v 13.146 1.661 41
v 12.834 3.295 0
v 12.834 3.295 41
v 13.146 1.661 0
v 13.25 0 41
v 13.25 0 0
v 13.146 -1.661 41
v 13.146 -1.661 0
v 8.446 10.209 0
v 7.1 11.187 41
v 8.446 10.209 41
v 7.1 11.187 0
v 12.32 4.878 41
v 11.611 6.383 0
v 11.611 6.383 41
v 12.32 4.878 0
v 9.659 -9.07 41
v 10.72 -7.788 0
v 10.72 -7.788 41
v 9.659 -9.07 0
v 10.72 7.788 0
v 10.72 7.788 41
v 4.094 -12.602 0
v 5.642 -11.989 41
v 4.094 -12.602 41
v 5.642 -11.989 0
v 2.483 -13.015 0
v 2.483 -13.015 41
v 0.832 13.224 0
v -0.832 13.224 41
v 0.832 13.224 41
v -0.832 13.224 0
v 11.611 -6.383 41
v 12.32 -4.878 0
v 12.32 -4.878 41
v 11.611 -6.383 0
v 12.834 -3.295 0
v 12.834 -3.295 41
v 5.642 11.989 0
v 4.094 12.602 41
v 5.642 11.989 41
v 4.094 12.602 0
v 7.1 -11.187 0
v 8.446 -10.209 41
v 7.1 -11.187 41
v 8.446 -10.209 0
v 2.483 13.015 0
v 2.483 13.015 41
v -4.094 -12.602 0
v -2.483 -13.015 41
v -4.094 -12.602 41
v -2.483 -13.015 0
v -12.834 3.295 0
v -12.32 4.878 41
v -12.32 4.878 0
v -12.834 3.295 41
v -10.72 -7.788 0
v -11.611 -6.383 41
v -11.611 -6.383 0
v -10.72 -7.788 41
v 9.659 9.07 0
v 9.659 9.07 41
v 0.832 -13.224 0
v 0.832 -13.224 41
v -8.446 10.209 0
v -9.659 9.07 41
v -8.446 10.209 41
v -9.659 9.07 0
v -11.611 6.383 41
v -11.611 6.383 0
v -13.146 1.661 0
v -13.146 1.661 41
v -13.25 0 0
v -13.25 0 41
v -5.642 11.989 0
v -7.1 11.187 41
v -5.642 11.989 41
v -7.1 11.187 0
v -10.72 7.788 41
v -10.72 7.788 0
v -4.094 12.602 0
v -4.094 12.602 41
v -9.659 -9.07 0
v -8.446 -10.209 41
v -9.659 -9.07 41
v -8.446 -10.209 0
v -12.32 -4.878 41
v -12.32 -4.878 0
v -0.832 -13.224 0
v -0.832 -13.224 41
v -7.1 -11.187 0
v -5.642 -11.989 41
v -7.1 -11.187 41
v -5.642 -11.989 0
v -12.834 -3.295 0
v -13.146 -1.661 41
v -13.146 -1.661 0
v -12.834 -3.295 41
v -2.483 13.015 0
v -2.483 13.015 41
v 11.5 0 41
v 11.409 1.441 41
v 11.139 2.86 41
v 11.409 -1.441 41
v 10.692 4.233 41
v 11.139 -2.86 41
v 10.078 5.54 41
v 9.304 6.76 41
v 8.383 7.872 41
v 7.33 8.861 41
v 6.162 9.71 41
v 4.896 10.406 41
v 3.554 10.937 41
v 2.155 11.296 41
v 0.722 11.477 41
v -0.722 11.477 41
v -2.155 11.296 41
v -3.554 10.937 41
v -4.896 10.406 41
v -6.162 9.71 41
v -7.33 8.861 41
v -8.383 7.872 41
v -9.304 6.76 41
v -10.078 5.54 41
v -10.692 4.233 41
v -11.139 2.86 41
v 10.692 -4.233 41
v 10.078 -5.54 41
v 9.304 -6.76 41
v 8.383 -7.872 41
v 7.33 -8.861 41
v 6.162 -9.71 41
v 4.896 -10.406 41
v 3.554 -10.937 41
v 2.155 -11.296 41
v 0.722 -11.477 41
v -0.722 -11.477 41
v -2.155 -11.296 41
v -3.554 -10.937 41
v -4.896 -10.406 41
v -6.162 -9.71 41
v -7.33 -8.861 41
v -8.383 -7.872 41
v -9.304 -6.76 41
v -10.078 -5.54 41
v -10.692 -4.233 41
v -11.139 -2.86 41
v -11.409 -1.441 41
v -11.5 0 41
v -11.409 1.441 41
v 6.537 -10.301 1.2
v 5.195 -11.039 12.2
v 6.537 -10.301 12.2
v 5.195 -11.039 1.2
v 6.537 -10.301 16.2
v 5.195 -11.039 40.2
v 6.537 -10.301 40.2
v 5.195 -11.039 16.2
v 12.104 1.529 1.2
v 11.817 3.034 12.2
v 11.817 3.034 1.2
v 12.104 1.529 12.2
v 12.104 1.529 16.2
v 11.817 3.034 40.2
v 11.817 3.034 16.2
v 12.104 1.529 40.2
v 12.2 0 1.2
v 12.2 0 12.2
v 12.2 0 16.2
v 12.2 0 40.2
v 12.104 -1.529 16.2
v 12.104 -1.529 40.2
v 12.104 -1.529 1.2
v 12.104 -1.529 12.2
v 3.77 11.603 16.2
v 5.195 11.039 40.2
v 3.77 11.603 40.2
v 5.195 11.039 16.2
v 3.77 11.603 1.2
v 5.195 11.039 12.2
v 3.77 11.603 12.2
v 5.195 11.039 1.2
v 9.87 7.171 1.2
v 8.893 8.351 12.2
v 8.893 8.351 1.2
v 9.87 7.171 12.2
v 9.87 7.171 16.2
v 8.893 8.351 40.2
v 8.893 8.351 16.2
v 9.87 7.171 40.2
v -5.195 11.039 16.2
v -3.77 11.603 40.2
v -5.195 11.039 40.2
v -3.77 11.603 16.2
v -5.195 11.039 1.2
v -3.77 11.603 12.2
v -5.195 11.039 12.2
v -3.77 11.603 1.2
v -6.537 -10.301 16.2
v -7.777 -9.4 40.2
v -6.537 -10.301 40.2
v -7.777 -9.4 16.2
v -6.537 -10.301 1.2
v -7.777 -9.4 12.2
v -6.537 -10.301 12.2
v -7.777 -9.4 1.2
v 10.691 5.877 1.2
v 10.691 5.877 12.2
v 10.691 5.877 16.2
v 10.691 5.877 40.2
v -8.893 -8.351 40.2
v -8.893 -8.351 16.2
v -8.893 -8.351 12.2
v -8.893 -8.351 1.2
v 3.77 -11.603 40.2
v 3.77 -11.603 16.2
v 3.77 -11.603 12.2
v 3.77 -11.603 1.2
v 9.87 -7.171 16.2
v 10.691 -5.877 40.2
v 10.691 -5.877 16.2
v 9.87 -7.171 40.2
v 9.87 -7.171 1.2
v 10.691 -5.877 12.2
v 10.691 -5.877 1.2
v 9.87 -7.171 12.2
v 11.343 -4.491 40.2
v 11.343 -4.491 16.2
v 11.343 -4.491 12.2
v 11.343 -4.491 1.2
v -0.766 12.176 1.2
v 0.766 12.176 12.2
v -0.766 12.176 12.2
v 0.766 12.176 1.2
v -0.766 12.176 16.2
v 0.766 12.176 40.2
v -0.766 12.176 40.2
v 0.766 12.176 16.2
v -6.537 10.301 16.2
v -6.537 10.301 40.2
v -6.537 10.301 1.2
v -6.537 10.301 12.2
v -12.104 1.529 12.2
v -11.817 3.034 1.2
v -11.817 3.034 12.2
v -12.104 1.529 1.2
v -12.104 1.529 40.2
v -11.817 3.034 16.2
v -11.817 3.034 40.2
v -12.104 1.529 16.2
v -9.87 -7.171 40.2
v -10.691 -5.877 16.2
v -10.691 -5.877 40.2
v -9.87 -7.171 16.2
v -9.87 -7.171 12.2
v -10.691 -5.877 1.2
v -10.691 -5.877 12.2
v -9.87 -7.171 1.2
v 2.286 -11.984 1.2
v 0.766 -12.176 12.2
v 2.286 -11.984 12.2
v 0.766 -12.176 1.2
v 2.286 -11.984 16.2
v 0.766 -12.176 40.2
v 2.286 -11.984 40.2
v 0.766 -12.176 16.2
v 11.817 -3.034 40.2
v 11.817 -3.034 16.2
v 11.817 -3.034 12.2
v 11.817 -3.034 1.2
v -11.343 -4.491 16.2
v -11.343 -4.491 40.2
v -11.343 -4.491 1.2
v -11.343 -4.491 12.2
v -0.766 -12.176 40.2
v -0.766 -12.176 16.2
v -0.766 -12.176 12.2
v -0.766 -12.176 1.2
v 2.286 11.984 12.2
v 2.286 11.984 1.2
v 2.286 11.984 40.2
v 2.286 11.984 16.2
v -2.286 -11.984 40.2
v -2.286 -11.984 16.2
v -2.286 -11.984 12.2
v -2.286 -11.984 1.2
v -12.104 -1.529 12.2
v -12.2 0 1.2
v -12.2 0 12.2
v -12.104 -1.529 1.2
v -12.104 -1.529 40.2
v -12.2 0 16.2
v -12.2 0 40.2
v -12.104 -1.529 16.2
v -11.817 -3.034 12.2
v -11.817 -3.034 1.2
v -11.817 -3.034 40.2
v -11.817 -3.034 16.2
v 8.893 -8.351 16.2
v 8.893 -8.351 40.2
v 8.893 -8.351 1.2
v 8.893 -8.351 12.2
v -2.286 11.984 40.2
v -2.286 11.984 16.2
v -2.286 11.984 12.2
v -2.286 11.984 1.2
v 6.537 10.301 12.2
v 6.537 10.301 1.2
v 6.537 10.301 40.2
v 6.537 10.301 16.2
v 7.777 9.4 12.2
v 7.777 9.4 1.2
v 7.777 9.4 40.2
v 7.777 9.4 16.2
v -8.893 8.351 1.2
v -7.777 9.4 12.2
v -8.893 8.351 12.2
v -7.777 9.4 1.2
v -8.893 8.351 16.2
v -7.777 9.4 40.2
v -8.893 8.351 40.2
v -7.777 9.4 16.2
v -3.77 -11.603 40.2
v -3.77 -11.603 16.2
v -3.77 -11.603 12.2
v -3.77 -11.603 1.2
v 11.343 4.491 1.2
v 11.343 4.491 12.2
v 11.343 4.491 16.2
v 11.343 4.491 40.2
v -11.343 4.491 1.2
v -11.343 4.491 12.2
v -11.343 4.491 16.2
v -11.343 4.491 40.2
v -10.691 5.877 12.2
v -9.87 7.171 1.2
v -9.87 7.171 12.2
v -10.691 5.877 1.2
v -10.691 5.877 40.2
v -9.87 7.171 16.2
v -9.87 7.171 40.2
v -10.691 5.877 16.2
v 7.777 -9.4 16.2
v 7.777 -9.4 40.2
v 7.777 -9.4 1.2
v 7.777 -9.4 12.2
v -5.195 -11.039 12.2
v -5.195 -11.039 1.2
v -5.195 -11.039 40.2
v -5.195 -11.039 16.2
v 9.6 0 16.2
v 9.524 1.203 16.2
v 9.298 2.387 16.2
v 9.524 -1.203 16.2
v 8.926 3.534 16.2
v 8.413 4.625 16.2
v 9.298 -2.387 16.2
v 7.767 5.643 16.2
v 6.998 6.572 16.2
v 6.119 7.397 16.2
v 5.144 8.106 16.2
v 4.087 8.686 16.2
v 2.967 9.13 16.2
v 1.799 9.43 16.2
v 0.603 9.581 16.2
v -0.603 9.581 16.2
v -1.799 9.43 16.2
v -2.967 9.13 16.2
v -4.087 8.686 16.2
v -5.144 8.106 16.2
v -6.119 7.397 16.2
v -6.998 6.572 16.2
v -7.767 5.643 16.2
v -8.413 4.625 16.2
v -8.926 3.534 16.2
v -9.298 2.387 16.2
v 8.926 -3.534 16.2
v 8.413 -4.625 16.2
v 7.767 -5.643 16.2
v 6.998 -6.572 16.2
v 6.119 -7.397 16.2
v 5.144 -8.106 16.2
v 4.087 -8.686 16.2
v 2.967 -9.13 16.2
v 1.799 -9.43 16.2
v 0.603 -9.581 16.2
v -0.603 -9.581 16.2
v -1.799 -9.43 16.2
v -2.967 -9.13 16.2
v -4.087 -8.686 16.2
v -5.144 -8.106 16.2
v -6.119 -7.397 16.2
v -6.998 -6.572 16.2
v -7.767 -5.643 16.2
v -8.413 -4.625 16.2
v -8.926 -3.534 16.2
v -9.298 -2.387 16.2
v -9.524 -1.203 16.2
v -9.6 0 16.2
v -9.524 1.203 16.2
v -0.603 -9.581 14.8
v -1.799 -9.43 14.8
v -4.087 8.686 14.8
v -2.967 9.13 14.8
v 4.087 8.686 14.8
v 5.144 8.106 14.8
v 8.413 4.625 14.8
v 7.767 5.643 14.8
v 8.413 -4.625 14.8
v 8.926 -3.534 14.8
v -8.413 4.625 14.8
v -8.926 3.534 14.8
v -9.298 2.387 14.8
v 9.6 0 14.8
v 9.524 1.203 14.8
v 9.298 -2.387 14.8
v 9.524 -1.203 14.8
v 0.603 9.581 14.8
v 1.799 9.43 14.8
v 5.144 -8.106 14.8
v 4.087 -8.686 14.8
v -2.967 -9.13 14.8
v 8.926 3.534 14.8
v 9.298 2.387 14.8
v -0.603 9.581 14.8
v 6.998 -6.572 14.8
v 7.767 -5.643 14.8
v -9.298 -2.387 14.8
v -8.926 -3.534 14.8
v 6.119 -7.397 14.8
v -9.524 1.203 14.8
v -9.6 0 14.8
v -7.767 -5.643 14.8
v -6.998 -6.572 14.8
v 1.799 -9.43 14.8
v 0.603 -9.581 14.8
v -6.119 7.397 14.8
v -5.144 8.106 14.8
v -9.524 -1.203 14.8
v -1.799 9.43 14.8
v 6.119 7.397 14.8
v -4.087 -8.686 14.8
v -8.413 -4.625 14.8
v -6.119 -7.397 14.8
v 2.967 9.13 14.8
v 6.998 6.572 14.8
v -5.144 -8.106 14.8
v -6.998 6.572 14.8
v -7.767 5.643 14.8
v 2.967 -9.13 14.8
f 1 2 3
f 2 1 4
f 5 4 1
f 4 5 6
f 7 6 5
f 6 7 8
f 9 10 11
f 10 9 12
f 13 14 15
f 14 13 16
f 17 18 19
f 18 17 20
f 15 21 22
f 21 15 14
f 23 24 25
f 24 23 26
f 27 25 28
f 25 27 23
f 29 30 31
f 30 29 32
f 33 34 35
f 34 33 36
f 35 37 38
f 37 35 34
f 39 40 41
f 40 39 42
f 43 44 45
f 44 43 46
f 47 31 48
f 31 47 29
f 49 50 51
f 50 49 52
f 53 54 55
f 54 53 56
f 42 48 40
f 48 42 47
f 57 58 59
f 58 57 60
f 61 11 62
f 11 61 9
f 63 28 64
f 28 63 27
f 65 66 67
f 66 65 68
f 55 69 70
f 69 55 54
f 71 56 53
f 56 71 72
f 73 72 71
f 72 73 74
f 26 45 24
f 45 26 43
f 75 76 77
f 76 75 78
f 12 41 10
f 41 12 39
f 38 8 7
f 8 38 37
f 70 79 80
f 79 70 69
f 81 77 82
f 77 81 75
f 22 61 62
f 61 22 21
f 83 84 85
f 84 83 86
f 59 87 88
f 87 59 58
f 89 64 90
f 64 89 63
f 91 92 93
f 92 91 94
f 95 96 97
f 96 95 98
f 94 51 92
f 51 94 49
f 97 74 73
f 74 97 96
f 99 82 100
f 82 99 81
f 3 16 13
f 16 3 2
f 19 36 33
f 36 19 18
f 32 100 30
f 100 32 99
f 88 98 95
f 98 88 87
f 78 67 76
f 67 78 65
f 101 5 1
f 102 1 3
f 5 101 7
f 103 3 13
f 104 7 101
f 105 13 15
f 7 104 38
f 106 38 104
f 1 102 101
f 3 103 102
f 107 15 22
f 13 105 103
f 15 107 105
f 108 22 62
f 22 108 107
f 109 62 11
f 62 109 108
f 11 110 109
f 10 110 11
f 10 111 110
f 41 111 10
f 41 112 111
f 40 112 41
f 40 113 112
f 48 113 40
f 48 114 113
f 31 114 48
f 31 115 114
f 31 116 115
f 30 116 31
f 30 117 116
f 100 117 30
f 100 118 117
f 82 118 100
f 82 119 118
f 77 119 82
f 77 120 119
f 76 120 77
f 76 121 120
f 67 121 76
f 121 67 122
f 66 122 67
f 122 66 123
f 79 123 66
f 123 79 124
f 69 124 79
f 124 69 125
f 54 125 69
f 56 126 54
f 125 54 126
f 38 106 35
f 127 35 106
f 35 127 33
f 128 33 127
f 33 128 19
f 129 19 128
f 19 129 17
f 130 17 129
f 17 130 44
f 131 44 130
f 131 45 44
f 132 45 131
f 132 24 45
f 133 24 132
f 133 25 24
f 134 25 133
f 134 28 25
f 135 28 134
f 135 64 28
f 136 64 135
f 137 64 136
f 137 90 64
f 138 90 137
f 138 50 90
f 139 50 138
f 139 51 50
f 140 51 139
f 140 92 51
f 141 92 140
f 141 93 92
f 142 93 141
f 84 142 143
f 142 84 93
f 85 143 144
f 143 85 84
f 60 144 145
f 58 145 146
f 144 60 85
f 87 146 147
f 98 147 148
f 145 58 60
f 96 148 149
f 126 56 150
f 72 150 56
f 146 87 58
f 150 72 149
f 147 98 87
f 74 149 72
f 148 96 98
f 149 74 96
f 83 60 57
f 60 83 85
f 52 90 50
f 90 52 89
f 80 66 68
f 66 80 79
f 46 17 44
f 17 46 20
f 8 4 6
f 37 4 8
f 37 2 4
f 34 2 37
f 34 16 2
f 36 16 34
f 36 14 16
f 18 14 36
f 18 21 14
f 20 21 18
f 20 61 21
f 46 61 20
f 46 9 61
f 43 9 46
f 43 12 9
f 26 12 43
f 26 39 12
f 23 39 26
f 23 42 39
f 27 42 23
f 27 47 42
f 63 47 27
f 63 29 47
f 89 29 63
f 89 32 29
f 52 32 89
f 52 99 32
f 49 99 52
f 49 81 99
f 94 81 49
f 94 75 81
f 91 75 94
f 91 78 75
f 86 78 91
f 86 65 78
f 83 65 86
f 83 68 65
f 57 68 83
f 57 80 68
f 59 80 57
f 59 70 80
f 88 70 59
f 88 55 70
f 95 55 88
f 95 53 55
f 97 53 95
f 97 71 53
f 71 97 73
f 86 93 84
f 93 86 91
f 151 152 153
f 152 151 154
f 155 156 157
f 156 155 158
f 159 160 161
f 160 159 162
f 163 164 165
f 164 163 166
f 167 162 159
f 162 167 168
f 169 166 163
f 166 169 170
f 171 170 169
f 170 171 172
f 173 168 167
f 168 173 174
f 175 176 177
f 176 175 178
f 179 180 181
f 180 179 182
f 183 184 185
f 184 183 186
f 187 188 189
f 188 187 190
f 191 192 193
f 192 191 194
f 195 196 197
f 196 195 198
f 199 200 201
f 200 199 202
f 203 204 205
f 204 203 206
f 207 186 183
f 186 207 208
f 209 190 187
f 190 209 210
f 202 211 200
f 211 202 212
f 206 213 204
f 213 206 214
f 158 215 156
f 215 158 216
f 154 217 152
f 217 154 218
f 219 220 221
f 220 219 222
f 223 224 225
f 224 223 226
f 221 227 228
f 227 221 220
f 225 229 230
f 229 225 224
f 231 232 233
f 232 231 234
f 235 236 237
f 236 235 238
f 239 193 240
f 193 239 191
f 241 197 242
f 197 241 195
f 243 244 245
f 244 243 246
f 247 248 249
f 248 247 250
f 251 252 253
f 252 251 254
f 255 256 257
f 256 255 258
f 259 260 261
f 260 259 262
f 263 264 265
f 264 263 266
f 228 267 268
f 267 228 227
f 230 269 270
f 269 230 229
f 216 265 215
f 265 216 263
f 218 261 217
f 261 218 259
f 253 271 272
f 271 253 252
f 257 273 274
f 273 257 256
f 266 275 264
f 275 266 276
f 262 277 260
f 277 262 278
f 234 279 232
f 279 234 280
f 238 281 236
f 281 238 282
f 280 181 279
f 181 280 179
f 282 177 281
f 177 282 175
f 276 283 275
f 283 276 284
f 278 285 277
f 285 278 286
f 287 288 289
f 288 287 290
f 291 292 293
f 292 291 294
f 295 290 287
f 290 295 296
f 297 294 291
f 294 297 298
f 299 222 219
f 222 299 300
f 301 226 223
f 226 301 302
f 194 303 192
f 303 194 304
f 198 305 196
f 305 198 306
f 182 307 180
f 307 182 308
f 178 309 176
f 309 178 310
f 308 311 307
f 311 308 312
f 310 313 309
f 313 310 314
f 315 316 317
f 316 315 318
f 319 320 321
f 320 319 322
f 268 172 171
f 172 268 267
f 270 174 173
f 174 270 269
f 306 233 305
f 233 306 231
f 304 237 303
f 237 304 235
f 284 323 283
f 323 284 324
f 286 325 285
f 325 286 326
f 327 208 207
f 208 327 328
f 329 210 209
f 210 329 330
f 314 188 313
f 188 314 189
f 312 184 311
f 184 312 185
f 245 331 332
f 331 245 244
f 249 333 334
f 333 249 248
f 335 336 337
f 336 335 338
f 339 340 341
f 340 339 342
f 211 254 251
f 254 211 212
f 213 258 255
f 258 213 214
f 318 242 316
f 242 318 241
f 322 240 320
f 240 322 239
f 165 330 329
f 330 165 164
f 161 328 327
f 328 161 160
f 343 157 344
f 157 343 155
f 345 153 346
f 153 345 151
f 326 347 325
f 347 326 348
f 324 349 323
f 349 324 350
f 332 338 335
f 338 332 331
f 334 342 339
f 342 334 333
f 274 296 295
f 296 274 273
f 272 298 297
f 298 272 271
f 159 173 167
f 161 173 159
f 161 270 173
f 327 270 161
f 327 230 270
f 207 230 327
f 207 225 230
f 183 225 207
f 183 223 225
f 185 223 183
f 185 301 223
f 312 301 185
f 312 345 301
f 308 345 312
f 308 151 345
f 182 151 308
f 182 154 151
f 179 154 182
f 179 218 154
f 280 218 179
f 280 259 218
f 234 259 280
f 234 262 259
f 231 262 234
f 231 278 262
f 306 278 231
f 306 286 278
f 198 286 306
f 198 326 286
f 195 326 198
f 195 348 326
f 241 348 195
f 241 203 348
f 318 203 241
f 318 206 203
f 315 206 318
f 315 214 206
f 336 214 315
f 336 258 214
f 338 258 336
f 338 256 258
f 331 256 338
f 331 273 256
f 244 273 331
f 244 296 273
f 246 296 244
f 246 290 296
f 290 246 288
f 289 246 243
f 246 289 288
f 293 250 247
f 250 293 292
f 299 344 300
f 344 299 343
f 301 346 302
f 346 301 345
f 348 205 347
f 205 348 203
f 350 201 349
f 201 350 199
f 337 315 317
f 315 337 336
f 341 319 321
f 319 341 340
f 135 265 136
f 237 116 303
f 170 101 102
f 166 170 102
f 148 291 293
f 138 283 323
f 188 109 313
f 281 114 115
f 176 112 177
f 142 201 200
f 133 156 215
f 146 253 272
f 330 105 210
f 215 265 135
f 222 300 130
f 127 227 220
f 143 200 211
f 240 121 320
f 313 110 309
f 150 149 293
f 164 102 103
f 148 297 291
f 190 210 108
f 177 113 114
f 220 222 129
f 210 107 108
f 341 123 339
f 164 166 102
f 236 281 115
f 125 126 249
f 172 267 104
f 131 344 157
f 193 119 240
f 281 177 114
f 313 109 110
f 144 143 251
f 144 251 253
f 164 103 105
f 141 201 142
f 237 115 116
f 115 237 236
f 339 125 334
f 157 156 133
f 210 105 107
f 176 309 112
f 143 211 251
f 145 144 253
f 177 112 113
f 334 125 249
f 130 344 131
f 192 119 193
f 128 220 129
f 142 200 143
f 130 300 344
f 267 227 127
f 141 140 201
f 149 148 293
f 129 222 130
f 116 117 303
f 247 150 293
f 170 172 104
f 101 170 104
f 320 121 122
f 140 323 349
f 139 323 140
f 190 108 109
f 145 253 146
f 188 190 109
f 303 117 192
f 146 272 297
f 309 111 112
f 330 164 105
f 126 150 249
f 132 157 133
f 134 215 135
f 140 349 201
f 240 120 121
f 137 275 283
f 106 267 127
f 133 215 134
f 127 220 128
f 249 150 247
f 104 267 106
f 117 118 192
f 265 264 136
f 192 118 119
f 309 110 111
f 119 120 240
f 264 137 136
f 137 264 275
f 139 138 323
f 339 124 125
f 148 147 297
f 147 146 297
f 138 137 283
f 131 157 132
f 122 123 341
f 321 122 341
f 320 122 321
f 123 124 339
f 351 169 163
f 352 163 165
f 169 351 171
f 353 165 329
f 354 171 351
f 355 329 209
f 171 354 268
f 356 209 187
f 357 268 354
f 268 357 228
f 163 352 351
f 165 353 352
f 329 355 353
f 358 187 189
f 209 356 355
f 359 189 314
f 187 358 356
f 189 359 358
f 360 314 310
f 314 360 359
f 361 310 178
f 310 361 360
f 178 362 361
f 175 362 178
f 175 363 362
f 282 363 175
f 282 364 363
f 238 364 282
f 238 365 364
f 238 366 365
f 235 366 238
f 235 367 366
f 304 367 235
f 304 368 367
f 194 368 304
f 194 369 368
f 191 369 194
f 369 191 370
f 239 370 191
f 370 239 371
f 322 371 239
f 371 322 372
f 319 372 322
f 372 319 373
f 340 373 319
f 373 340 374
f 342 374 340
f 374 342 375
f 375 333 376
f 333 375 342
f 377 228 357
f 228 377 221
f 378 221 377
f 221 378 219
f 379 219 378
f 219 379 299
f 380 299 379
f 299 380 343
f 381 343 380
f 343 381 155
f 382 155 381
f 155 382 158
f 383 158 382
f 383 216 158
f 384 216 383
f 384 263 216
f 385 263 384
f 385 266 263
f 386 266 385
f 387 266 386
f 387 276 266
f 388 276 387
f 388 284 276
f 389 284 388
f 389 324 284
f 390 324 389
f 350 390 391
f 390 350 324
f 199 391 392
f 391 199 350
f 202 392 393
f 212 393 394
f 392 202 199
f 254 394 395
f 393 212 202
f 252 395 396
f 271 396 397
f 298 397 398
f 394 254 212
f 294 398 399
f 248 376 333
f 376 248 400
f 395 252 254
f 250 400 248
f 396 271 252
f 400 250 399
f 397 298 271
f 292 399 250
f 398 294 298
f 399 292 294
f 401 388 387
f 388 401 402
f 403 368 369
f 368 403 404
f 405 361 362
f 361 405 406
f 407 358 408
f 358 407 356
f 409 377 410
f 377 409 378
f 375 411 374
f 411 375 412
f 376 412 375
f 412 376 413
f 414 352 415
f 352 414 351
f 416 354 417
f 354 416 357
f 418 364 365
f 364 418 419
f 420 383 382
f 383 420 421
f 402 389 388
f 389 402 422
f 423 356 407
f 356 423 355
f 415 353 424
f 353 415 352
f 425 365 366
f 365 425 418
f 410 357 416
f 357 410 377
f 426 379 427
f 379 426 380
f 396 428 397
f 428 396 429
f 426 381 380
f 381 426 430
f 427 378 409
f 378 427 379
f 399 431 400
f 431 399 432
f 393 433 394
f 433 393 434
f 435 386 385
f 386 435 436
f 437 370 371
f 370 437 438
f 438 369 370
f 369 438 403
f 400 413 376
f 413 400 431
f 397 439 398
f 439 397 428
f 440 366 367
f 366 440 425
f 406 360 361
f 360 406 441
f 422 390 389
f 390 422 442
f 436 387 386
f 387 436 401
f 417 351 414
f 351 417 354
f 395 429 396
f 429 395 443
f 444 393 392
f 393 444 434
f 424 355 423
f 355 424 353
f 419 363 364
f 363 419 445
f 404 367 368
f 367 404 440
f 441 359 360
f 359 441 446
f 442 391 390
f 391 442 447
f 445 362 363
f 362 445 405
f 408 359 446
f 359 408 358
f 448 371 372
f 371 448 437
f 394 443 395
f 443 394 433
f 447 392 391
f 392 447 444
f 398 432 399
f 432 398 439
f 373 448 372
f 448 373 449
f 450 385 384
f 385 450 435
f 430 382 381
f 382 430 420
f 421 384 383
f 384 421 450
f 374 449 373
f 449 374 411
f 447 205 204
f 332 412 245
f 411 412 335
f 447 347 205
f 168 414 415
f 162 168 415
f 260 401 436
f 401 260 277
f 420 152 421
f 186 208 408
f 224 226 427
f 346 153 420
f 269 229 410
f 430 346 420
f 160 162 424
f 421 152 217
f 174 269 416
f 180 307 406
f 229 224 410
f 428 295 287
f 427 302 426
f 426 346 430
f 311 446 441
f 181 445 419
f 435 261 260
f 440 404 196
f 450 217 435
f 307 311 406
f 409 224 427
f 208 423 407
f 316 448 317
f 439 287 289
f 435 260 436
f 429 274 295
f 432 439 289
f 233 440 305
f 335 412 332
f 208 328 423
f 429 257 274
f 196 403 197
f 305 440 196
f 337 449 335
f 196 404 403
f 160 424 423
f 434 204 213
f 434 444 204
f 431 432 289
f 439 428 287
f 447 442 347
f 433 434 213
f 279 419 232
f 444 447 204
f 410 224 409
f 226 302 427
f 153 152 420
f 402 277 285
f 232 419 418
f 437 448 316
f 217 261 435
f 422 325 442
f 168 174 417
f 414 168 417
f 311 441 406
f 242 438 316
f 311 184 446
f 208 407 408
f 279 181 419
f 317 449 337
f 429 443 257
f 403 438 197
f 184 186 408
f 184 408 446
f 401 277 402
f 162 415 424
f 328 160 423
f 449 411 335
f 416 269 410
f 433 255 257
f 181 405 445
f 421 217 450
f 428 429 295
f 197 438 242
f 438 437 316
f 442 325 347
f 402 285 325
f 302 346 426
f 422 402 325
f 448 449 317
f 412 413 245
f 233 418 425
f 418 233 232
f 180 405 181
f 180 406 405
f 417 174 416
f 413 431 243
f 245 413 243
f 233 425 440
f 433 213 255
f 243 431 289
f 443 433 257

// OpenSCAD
// configuration
$fn=50;
outer_dia = 26.5;
cap_thickness = 1.2;

inner_ledge_dia = 18.8 + 0.4;
inner_ledge_length = 4;
motor_dia = 23.8;
motor_lenght = 37;
motor_lenght_b = 23.5 + 0.5;
mass_spacing = 2; // distance between the inside of the cover and the rotating mass
retention_ledge = 0.8;

// calculated values
inner_dia = motor_dia + 0.6;
retention_ledge_dia = motor_dia - retention_ledge;
total_height = motor_lenght + mass_spacing + retention_ledge + cap_thickness;
inner_ledge_chamfer_height = (inner_dia - inner_ledge_dia) / 2;

// geometry
union() {
    // outer shell
    difference() {
        cylinder(h=total_height, d=outer_dia, center=false);
        translate([0, 0, cap_thickness])
        cylinder(h=total_height - retention_ledge - cap_thickness, d=inner_dia, center=false);
        // retention ledge
        translate([0, 0, total_height - retention_ledge])
        cylinder(d1=inner_dia, d2=retention_ledge_dia, h=retention_ledge);
    }
    // inner ledge
    translate([0, 0, total_height - retention_ledge - motor_lenght_b - inner_ledge_length]) difference() {
        cylinder(d=inner_dia, h=inner_ledge_length);
        translate([0, 0, -.1]) cylinder(h=inner_ledge_length + 0.2, d=inner_ledge_dia);
        cylinder(d1=inner_dia, d2=inner_ledge_dia, h=inner_ledge_chamfer_height);
    }
}
